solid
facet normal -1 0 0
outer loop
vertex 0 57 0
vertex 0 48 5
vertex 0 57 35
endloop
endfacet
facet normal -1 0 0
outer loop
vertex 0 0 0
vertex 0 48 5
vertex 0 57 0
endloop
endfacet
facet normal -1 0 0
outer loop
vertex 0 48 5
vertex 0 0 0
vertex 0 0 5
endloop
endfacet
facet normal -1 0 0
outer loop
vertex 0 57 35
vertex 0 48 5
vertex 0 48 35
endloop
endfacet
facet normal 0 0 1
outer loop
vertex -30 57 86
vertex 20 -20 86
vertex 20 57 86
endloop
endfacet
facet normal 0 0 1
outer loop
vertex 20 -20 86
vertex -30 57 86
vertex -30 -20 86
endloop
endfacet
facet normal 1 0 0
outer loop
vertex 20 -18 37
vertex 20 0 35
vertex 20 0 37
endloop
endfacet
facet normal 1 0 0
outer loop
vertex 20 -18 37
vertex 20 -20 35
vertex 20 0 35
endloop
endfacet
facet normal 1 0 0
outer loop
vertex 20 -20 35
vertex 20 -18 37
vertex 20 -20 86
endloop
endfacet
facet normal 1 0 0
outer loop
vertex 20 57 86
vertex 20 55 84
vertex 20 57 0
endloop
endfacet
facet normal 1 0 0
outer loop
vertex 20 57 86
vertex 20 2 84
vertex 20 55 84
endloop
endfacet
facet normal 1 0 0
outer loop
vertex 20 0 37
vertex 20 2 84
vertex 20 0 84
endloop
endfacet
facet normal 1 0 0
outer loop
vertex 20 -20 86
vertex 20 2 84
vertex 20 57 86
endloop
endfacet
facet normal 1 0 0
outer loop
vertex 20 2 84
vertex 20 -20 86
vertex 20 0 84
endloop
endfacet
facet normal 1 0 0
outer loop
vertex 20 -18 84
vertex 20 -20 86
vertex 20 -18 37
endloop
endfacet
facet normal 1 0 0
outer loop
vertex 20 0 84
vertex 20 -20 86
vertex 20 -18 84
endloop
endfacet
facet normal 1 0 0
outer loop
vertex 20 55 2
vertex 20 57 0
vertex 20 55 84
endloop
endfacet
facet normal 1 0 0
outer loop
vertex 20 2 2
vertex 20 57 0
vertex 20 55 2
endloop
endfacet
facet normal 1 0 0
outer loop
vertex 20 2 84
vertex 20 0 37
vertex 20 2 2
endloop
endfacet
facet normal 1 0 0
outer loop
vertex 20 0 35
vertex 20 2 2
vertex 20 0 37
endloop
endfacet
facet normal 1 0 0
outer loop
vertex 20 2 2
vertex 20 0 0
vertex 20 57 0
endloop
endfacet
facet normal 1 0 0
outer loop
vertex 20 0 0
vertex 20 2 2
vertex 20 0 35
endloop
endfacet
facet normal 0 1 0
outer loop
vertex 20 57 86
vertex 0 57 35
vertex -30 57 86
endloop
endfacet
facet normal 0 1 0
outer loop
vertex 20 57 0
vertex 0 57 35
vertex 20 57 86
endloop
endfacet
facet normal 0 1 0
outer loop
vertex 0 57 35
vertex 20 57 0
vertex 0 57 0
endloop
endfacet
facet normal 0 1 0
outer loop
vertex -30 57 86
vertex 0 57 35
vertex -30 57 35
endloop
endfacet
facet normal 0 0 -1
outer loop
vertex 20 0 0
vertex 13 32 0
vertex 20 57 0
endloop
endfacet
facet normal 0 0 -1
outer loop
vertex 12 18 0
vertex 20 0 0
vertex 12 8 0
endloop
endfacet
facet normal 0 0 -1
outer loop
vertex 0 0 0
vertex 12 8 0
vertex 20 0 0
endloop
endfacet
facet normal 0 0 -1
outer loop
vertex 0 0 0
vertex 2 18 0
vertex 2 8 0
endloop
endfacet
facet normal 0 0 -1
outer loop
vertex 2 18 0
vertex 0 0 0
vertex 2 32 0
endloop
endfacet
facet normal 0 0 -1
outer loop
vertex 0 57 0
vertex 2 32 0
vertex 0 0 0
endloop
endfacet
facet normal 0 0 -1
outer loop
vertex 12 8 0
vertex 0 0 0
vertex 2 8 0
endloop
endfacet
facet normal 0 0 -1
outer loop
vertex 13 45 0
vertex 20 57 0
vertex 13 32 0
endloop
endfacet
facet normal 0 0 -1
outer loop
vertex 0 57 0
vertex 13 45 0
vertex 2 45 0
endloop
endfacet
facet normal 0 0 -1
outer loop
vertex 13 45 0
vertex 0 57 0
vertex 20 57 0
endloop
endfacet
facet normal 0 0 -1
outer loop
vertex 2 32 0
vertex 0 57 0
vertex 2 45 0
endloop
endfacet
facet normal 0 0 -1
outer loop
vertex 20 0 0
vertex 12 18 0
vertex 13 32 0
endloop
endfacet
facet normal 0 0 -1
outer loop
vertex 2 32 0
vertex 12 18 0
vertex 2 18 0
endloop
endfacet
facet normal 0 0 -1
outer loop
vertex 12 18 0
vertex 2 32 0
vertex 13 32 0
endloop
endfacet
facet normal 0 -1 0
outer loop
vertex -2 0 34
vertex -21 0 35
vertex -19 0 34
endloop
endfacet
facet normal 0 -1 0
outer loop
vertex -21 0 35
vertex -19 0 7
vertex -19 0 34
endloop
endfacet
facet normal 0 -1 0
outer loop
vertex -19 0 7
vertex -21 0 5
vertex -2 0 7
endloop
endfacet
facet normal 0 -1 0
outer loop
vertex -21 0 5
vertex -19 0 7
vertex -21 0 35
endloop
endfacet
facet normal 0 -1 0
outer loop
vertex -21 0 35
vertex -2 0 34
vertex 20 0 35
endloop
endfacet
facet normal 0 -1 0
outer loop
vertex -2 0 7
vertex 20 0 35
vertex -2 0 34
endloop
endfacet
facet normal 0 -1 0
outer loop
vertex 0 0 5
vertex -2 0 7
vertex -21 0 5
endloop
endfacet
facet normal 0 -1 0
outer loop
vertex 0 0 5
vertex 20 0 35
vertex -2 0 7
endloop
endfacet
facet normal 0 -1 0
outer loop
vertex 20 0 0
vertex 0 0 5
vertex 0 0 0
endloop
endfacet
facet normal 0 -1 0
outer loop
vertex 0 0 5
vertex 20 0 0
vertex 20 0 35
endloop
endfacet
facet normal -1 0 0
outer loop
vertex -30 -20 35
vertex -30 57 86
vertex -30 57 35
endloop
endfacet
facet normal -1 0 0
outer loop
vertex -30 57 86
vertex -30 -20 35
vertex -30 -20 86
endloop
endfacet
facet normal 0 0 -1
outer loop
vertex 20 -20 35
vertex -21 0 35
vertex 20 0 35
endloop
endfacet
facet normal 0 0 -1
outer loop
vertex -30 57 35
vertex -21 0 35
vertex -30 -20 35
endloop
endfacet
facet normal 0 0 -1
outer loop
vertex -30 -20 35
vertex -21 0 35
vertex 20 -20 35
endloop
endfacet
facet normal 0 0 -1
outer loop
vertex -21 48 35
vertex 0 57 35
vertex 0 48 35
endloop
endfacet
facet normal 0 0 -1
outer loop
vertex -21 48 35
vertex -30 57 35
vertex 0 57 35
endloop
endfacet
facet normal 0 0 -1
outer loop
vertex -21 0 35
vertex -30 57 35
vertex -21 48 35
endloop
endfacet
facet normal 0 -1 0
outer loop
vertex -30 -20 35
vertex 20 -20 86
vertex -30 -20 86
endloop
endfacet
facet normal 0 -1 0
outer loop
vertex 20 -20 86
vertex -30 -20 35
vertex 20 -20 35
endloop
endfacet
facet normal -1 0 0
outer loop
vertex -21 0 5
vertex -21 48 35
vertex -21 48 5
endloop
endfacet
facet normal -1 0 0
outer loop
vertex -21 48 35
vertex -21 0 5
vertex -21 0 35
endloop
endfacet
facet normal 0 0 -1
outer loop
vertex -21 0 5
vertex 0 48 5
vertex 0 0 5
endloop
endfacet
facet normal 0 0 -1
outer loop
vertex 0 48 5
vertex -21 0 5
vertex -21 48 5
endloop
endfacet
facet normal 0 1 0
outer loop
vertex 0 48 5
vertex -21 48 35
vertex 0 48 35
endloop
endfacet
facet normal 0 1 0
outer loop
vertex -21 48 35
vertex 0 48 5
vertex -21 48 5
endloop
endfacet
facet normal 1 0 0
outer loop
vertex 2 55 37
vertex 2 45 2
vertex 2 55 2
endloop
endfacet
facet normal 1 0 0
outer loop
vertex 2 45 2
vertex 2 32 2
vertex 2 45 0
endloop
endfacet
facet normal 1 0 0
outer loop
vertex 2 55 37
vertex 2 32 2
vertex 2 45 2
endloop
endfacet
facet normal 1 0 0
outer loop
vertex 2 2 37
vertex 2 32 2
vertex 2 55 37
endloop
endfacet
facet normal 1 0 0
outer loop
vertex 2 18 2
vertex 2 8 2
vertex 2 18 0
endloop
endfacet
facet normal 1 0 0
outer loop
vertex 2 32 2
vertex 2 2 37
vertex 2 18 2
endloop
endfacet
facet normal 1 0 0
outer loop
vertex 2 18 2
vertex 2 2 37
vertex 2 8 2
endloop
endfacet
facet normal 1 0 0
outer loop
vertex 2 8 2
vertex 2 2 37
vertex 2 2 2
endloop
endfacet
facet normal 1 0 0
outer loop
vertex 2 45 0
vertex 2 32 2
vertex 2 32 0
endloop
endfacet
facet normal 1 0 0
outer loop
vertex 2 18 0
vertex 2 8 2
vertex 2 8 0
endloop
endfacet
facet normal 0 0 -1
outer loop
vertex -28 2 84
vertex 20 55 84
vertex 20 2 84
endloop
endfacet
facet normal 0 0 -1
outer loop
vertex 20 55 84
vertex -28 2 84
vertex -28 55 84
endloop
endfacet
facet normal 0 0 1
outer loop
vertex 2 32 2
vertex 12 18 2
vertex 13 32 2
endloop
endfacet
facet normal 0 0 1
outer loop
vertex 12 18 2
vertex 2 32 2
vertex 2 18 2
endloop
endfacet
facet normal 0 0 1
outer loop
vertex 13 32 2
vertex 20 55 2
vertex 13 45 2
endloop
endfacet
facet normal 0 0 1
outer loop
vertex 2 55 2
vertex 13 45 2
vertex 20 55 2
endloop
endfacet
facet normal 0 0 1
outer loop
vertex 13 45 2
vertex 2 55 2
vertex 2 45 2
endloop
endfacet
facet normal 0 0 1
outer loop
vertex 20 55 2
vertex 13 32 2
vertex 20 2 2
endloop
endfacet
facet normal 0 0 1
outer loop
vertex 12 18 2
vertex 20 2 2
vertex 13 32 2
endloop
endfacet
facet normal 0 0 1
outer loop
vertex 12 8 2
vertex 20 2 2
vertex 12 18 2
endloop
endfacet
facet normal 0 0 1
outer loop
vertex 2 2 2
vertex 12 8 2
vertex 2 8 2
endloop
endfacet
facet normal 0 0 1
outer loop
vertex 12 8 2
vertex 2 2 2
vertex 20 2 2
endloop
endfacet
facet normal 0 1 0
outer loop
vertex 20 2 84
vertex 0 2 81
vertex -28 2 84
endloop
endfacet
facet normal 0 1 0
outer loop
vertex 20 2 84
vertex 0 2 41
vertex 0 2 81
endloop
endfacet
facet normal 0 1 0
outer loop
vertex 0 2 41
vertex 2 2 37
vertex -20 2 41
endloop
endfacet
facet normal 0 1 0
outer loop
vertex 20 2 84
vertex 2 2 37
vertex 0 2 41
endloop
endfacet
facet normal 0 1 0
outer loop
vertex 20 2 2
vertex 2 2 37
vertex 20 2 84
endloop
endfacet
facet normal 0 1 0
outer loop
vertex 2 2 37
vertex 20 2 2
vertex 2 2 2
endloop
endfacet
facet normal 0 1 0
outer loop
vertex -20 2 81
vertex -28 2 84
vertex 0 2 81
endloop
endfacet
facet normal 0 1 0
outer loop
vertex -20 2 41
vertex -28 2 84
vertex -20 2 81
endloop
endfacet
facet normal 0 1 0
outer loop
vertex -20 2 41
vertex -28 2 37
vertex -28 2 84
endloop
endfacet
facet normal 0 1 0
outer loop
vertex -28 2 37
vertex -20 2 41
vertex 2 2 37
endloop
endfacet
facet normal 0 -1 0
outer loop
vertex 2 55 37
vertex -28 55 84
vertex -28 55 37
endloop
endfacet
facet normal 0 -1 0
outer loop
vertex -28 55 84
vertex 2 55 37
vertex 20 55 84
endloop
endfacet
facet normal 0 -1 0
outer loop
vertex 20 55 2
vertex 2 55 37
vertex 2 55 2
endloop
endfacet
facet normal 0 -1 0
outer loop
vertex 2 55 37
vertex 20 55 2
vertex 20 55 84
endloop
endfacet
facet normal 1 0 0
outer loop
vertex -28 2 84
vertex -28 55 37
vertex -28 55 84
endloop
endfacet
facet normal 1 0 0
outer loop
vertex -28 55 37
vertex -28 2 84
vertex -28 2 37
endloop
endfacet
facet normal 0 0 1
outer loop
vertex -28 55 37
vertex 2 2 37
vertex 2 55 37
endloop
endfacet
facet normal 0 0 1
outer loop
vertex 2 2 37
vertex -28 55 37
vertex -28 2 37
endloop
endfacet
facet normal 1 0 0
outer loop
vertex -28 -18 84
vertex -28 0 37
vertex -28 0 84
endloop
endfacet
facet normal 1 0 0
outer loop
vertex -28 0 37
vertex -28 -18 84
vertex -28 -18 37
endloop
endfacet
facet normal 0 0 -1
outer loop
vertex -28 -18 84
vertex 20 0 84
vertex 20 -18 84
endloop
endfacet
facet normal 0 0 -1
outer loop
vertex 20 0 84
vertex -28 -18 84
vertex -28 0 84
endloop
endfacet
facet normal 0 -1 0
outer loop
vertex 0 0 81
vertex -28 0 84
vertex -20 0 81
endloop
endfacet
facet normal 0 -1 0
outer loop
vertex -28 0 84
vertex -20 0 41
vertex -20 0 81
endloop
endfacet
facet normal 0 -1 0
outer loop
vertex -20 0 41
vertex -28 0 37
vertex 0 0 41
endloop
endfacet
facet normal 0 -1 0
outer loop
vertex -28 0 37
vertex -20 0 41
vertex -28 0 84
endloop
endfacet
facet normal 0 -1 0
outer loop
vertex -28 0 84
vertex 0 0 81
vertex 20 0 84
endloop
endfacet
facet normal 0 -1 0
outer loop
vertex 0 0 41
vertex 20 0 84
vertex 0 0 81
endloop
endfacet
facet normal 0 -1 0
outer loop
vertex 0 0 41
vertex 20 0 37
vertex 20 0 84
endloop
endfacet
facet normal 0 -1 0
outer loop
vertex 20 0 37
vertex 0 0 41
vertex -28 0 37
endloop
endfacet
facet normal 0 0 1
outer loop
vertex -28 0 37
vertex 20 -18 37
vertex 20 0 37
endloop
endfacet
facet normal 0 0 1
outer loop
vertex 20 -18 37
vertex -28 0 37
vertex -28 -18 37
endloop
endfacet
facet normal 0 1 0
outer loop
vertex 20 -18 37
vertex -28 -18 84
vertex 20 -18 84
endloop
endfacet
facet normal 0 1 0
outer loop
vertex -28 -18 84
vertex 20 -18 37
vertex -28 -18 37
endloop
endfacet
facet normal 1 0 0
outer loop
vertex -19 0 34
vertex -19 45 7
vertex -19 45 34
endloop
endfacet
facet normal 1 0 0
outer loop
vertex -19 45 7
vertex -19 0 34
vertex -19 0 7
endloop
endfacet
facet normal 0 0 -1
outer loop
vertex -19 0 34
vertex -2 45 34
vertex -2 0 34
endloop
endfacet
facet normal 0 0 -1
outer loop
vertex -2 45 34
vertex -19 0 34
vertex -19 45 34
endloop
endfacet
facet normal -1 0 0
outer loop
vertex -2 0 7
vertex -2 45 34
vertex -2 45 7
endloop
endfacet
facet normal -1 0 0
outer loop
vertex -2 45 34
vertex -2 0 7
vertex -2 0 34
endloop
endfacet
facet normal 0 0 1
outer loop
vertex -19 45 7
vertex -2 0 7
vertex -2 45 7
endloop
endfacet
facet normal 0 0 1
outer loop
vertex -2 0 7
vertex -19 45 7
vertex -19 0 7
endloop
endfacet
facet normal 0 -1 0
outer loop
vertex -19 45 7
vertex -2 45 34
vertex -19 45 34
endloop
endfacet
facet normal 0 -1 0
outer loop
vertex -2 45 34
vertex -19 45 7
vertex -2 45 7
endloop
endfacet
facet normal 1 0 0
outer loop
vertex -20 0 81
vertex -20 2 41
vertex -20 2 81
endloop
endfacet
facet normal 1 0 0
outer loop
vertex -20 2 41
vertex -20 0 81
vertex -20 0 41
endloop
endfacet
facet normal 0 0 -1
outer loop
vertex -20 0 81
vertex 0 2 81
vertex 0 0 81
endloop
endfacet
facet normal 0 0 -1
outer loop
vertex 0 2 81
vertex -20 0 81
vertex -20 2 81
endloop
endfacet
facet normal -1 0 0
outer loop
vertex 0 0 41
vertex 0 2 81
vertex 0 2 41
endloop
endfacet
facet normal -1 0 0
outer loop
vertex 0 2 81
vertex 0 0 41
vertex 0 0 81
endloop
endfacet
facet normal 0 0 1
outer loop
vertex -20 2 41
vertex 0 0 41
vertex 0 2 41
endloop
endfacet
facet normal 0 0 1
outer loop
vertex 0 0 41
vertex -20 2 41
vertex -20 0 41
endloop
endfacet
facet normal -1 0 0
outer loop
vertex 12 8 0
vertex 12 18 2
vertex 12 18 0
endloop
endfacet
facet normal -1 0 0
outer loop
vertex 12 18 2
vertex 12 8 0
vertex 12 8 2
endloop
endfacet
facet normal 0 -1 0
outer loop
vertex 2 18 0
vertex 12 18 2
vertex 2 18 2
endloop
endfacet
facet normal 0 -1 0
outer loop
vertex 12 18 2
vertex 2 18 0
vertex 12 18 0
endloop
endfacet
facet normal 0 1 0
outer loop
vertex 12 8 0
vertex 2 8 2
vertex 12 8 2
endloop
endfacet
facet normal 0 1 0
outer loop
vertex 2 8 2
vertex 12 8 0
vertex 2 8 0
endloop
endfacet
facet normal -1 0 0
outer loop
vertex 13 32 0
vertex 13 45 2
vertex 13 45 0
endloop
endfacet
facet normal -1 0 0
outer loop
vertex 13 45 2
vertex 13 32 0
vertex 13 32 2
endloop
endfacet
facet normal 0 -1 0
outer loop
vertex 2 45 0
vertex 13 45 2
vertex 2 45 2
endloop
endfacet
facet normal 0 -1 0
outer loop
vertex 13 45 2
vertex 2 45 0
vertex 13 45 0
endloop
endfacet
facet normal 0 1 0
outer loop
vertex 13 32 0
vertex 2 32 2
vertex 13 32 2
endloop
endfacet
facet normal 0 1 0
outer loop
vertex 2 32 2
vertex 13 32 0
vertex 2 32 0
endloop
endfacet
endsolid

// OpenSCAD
difference() {
    union() {
        // Hauptkörper
        cube([20, 57, 86]);
        translate([-30, 0, 35]) {
            cube([30, 57, 51]);
        }
        
        // Ausbeulung für Kabel
        translate([-30, -20, 35]) {
            cube([50, 20, 51]);
        }
        
        // Ausbeulung für Batterie
        translate([-21, 0, 5]) {
            cube([21, 48, 30]);
        }
    }
    
    // Aushöhlen des Hauptkörpers
    translate([2, 2, 2]) {
        cube([19, 53, 82]);
    }
    translate([-28, 2, 37]) {
        cube([31, 53, 47]);
    }
    translate([-28, -18, 37]) {
        cube([49, 18, 47]);
    }
    translate([-19, -1, 7]) {
        cube([17, 46, 27]);
    }
    
    // Aussparung für Sensorkabel
    translate([-20, -2, 41]) { 
        cube([20, 5, 40]);
    } 
    
    // Aussparung für Batterie
    translate([2, 8, -2]) { 
        cube([10, 10, 6]);
    }  
    
    // Aussparung für USB-Anschluss
    translate([2, 32, -2]) { 
        cube([11, 13, 6]);
    } 
}
